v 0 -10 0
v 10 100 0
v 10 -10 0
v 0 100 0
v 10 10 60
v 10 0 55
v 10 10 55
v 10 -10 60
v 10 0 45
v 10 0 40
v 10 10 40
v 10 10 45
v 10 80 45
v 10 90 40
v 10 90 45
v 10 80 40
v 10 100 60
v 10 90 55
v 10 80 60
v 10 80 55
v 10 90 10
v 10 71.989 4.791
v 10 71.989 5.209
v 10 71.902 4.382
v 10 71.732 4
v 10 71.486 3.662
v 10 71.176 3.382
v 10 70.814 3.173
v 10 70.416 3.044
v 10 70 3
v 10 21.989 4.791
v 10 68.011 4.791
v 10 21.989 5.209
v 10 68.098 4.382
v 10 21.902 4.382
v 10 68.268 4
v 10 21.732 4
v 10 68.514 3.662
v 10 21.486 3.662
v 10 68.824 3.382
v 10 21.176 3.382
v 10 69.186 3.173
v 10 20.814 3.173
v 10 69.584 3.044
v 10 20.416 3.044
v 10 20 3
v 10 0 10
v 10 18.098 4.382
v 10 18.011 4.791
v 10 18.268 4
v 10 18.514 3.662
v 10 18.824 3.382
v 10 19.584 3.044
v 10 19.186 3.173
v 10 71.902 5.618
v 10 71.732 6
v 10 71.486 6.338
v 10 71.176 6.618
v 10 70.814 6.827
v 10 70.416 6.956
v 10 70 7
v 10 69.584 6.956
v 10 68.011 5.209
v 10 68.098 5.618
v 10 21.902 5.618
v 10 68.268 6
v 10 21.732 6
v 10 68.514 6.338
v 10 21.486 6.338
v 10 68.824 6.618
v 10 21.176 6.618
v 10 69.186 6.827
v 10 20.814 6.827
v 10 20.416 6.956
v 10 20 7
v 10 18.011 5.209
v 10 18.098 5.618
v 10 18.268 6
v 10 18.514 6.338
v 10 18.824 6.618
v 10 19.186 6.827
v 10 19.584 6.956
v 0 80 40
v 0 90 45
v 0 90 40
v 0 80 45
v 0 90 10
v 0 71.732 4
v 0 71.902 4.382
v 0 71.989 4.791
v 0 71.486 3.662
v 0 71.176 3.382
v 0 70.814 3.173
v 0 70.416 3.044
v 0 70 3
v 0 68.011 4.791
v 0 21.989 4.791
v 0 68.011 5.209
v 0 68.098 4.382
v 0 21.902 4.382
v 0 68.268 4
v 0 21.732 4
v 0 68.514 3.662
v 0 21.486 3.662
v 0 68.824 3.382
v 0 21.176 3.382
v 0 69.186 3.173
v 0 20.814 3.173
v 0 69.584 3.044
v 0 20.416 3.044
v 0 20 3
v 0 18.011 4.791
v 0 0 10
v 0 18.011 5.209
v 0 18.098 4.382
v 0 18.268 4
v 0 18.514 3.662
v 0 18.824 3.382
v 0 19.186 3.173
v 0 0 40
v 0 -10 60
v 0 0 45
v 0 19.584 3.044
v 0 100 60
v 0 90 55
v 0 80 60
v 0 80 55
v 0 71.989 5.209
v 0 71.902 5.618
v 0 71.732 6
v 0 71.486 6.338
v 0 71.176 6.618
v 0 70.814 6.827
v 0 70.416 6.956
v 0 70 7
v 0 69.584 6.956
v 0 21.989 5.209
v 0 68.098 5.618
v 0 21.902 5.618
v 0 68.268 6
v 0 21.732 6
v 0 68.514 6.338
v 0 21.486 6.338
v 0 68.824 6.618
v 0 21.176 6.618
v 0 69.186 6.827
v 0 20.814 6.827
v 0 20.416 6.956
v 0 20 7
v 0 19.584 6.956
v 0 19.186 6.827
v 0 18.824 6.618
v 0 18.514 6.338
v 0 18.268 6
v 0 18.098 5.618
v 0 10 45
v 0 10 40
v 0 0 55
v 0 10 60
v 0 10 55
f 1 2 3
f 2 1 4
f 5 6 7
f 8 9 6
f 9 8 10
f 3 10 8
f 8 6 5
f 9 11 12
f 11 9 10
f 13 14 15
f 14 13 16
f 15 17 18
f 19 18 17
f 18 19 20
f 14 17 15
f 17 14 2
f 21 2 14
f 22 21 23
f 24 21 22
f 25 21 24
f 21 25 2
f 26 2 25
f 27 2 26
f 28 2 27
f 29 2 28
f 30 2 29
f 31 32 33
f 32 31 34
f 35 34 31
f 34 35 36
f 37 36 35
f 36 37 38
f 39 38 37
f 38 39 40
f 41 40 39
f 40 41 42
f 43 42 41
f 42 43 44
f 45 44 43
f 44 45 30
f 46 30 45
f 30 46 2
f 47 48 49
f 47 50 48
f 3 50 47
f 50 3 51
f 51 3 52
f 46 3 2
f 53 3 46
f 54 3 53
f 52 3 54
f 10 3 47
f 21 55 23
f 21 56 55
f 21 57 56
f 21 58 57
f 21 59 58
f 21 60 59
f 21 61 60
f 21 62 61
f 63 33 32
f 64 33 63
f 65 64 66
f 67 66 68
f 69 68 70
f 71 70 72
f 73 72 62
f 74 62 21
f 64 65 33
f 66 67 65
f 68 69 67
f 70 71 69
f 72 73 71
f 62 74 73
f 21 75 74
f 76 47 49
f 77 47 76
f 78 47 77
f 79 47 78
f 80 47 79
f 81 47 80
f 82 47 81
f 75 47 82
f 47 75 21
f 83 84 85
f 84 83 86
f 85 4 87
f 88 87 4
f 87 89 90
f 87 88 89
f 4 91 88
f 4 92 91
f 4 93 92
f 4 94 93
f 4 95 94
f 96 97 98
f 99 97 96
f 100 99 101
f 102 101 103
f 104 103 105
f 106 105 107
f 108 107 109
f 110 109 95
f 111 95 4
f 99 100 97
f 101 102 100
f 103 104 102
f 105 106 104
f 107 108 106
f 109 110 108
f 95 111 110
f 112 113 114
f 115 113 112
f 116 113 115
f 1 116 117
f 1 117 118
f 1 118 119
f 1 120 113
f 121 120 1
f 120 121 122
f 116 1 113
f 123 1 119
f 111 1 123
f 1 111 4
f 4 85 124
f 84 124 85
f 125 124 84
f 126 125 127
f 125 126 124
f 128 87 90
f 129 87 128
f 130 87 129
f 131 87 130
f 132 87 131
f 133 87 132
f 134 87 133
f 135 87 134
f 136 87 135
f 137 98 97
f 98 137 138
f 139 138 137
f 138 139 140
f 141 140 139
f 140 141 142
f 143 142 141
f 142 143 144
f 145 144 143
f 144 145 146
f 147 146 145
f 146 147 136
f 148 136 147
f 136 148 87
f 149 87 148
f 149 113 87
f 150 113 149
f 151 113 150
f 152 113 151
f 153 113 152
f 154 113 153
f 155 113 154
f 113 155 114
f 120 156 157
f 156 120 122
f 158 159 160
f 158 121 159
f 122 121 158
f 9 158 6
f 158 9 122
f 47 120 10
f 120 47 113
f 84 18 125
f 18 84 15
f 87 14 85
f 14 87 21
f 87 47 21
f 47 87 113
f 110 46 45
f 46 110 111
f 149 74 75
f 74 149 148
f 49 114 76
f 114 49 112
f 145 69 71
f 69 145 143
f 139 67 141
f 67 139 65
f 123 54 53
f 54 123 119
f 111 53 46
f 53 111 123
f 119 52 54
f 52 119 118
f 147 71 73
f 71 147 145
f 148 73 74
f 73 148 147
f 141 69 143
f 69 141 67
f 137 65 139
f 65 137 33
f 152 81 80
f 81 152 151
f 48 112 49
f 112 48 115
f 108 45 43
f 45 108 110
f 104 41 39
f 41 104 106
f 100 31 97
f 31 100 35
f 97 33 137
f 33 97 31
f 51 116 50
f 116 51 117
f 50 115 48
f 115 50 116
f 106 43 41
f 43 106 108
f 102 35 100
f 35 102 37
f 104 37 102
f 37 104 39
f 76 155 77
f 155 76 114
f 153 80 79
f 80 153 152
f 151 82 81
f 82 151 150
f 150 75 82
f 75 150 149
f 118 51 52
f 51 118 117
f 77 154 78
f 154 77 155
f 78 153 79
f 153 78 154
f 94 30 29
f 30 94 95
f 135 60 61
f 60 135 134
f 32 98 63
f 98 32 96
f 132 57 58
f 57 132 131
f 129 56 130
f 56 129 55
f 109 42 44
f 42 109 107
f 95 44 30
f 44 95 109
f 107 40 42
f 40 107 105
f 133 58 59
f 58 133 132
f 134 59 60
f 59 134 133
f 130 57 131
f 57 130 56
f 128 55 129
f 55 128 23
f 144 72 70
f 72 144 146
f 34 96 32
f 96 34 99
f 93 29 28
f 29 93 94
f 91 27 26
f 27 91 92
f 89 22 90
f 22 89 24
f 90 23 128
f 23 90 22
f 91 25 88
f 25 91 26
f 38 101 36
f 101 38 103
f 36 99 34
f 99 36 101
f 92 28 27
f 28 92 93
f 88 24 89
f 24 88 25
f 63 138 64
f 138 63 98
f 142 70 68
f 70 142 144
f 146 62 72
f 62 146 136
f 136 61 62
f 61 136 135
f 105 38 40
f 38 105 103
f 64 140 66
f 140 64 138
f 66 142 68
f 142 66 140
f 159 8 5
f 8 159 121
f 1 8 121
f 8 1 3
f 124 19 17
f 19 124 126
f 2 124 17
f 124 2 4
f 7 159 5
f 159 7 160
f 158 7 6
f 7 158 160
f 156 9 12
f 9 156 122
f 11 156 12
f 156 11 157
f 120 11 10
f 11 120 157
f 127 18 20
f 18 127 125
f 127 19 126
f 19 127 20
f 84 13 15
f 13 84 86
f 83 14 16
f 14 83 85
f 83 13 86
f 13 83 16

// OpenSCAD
$fs=0.1;
boxLength = 10;
boxWidth = 90;

Hinge();

module Hinge() {
    union() {
        makesHoles();
        SquareBox(0,-10,0);
        SquareBox(0,boxWidth,0);
        
        hingePart(0,0,55);
        hingePart(0,0,40);

        hingePart(0,boxWidth-10,55);
        hingePart(0,boxWidth-10,40);
    }
}

module hingePart(cubeX,cubeY,cubeZ) {
    translate([cubeX,cubeY,cubeZ]) { 
            cube([10,10,5]);
        }
}

module SquareBox(xbox,ybox,zbox) {
    translate([xbox,ybox,zbox]) {
        cube([10,10,60]);
        
    }
}

module makesHoles() {
    union() {
        difference() {
            squareBox(boxLength,boxWidth);
            tube(5,boxWidth/2-25);
            tube(5,boxWidth/2+25);
        }
    }
}

module squareBox(length,width) {
    linear_extrude(height=10,convexity=8){
        square([length,width]);
    }
}

module tube(height,location) {
    translate([-1,location,height]) {
        rotate([0,90,0]) {
            cylinder(d=4,h=20); 
        }
    }
}
